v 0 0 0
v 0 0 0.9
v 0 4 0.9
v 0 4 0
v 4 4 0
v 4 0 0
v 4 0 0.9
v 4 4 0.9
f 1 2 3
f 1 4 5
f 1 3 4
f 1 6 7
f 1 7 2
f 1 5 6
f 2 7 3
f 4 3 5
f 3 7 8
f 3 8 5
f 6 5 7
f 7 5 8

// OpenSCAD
/* Warning, this is a very basic generator with a lot of approximation 
input data : [VQFN, RFB, 4x4x0.9mm, 24, , A, C04-21381A]
generated by com.zoubworld.electronics.cad.model3d.Basic
Date : Sun Feb 15 10:50:49 CET 2026
*/

//body
color("black")
translate([0,0,0])
cube([4.0,4.0,0.9], center=false);
